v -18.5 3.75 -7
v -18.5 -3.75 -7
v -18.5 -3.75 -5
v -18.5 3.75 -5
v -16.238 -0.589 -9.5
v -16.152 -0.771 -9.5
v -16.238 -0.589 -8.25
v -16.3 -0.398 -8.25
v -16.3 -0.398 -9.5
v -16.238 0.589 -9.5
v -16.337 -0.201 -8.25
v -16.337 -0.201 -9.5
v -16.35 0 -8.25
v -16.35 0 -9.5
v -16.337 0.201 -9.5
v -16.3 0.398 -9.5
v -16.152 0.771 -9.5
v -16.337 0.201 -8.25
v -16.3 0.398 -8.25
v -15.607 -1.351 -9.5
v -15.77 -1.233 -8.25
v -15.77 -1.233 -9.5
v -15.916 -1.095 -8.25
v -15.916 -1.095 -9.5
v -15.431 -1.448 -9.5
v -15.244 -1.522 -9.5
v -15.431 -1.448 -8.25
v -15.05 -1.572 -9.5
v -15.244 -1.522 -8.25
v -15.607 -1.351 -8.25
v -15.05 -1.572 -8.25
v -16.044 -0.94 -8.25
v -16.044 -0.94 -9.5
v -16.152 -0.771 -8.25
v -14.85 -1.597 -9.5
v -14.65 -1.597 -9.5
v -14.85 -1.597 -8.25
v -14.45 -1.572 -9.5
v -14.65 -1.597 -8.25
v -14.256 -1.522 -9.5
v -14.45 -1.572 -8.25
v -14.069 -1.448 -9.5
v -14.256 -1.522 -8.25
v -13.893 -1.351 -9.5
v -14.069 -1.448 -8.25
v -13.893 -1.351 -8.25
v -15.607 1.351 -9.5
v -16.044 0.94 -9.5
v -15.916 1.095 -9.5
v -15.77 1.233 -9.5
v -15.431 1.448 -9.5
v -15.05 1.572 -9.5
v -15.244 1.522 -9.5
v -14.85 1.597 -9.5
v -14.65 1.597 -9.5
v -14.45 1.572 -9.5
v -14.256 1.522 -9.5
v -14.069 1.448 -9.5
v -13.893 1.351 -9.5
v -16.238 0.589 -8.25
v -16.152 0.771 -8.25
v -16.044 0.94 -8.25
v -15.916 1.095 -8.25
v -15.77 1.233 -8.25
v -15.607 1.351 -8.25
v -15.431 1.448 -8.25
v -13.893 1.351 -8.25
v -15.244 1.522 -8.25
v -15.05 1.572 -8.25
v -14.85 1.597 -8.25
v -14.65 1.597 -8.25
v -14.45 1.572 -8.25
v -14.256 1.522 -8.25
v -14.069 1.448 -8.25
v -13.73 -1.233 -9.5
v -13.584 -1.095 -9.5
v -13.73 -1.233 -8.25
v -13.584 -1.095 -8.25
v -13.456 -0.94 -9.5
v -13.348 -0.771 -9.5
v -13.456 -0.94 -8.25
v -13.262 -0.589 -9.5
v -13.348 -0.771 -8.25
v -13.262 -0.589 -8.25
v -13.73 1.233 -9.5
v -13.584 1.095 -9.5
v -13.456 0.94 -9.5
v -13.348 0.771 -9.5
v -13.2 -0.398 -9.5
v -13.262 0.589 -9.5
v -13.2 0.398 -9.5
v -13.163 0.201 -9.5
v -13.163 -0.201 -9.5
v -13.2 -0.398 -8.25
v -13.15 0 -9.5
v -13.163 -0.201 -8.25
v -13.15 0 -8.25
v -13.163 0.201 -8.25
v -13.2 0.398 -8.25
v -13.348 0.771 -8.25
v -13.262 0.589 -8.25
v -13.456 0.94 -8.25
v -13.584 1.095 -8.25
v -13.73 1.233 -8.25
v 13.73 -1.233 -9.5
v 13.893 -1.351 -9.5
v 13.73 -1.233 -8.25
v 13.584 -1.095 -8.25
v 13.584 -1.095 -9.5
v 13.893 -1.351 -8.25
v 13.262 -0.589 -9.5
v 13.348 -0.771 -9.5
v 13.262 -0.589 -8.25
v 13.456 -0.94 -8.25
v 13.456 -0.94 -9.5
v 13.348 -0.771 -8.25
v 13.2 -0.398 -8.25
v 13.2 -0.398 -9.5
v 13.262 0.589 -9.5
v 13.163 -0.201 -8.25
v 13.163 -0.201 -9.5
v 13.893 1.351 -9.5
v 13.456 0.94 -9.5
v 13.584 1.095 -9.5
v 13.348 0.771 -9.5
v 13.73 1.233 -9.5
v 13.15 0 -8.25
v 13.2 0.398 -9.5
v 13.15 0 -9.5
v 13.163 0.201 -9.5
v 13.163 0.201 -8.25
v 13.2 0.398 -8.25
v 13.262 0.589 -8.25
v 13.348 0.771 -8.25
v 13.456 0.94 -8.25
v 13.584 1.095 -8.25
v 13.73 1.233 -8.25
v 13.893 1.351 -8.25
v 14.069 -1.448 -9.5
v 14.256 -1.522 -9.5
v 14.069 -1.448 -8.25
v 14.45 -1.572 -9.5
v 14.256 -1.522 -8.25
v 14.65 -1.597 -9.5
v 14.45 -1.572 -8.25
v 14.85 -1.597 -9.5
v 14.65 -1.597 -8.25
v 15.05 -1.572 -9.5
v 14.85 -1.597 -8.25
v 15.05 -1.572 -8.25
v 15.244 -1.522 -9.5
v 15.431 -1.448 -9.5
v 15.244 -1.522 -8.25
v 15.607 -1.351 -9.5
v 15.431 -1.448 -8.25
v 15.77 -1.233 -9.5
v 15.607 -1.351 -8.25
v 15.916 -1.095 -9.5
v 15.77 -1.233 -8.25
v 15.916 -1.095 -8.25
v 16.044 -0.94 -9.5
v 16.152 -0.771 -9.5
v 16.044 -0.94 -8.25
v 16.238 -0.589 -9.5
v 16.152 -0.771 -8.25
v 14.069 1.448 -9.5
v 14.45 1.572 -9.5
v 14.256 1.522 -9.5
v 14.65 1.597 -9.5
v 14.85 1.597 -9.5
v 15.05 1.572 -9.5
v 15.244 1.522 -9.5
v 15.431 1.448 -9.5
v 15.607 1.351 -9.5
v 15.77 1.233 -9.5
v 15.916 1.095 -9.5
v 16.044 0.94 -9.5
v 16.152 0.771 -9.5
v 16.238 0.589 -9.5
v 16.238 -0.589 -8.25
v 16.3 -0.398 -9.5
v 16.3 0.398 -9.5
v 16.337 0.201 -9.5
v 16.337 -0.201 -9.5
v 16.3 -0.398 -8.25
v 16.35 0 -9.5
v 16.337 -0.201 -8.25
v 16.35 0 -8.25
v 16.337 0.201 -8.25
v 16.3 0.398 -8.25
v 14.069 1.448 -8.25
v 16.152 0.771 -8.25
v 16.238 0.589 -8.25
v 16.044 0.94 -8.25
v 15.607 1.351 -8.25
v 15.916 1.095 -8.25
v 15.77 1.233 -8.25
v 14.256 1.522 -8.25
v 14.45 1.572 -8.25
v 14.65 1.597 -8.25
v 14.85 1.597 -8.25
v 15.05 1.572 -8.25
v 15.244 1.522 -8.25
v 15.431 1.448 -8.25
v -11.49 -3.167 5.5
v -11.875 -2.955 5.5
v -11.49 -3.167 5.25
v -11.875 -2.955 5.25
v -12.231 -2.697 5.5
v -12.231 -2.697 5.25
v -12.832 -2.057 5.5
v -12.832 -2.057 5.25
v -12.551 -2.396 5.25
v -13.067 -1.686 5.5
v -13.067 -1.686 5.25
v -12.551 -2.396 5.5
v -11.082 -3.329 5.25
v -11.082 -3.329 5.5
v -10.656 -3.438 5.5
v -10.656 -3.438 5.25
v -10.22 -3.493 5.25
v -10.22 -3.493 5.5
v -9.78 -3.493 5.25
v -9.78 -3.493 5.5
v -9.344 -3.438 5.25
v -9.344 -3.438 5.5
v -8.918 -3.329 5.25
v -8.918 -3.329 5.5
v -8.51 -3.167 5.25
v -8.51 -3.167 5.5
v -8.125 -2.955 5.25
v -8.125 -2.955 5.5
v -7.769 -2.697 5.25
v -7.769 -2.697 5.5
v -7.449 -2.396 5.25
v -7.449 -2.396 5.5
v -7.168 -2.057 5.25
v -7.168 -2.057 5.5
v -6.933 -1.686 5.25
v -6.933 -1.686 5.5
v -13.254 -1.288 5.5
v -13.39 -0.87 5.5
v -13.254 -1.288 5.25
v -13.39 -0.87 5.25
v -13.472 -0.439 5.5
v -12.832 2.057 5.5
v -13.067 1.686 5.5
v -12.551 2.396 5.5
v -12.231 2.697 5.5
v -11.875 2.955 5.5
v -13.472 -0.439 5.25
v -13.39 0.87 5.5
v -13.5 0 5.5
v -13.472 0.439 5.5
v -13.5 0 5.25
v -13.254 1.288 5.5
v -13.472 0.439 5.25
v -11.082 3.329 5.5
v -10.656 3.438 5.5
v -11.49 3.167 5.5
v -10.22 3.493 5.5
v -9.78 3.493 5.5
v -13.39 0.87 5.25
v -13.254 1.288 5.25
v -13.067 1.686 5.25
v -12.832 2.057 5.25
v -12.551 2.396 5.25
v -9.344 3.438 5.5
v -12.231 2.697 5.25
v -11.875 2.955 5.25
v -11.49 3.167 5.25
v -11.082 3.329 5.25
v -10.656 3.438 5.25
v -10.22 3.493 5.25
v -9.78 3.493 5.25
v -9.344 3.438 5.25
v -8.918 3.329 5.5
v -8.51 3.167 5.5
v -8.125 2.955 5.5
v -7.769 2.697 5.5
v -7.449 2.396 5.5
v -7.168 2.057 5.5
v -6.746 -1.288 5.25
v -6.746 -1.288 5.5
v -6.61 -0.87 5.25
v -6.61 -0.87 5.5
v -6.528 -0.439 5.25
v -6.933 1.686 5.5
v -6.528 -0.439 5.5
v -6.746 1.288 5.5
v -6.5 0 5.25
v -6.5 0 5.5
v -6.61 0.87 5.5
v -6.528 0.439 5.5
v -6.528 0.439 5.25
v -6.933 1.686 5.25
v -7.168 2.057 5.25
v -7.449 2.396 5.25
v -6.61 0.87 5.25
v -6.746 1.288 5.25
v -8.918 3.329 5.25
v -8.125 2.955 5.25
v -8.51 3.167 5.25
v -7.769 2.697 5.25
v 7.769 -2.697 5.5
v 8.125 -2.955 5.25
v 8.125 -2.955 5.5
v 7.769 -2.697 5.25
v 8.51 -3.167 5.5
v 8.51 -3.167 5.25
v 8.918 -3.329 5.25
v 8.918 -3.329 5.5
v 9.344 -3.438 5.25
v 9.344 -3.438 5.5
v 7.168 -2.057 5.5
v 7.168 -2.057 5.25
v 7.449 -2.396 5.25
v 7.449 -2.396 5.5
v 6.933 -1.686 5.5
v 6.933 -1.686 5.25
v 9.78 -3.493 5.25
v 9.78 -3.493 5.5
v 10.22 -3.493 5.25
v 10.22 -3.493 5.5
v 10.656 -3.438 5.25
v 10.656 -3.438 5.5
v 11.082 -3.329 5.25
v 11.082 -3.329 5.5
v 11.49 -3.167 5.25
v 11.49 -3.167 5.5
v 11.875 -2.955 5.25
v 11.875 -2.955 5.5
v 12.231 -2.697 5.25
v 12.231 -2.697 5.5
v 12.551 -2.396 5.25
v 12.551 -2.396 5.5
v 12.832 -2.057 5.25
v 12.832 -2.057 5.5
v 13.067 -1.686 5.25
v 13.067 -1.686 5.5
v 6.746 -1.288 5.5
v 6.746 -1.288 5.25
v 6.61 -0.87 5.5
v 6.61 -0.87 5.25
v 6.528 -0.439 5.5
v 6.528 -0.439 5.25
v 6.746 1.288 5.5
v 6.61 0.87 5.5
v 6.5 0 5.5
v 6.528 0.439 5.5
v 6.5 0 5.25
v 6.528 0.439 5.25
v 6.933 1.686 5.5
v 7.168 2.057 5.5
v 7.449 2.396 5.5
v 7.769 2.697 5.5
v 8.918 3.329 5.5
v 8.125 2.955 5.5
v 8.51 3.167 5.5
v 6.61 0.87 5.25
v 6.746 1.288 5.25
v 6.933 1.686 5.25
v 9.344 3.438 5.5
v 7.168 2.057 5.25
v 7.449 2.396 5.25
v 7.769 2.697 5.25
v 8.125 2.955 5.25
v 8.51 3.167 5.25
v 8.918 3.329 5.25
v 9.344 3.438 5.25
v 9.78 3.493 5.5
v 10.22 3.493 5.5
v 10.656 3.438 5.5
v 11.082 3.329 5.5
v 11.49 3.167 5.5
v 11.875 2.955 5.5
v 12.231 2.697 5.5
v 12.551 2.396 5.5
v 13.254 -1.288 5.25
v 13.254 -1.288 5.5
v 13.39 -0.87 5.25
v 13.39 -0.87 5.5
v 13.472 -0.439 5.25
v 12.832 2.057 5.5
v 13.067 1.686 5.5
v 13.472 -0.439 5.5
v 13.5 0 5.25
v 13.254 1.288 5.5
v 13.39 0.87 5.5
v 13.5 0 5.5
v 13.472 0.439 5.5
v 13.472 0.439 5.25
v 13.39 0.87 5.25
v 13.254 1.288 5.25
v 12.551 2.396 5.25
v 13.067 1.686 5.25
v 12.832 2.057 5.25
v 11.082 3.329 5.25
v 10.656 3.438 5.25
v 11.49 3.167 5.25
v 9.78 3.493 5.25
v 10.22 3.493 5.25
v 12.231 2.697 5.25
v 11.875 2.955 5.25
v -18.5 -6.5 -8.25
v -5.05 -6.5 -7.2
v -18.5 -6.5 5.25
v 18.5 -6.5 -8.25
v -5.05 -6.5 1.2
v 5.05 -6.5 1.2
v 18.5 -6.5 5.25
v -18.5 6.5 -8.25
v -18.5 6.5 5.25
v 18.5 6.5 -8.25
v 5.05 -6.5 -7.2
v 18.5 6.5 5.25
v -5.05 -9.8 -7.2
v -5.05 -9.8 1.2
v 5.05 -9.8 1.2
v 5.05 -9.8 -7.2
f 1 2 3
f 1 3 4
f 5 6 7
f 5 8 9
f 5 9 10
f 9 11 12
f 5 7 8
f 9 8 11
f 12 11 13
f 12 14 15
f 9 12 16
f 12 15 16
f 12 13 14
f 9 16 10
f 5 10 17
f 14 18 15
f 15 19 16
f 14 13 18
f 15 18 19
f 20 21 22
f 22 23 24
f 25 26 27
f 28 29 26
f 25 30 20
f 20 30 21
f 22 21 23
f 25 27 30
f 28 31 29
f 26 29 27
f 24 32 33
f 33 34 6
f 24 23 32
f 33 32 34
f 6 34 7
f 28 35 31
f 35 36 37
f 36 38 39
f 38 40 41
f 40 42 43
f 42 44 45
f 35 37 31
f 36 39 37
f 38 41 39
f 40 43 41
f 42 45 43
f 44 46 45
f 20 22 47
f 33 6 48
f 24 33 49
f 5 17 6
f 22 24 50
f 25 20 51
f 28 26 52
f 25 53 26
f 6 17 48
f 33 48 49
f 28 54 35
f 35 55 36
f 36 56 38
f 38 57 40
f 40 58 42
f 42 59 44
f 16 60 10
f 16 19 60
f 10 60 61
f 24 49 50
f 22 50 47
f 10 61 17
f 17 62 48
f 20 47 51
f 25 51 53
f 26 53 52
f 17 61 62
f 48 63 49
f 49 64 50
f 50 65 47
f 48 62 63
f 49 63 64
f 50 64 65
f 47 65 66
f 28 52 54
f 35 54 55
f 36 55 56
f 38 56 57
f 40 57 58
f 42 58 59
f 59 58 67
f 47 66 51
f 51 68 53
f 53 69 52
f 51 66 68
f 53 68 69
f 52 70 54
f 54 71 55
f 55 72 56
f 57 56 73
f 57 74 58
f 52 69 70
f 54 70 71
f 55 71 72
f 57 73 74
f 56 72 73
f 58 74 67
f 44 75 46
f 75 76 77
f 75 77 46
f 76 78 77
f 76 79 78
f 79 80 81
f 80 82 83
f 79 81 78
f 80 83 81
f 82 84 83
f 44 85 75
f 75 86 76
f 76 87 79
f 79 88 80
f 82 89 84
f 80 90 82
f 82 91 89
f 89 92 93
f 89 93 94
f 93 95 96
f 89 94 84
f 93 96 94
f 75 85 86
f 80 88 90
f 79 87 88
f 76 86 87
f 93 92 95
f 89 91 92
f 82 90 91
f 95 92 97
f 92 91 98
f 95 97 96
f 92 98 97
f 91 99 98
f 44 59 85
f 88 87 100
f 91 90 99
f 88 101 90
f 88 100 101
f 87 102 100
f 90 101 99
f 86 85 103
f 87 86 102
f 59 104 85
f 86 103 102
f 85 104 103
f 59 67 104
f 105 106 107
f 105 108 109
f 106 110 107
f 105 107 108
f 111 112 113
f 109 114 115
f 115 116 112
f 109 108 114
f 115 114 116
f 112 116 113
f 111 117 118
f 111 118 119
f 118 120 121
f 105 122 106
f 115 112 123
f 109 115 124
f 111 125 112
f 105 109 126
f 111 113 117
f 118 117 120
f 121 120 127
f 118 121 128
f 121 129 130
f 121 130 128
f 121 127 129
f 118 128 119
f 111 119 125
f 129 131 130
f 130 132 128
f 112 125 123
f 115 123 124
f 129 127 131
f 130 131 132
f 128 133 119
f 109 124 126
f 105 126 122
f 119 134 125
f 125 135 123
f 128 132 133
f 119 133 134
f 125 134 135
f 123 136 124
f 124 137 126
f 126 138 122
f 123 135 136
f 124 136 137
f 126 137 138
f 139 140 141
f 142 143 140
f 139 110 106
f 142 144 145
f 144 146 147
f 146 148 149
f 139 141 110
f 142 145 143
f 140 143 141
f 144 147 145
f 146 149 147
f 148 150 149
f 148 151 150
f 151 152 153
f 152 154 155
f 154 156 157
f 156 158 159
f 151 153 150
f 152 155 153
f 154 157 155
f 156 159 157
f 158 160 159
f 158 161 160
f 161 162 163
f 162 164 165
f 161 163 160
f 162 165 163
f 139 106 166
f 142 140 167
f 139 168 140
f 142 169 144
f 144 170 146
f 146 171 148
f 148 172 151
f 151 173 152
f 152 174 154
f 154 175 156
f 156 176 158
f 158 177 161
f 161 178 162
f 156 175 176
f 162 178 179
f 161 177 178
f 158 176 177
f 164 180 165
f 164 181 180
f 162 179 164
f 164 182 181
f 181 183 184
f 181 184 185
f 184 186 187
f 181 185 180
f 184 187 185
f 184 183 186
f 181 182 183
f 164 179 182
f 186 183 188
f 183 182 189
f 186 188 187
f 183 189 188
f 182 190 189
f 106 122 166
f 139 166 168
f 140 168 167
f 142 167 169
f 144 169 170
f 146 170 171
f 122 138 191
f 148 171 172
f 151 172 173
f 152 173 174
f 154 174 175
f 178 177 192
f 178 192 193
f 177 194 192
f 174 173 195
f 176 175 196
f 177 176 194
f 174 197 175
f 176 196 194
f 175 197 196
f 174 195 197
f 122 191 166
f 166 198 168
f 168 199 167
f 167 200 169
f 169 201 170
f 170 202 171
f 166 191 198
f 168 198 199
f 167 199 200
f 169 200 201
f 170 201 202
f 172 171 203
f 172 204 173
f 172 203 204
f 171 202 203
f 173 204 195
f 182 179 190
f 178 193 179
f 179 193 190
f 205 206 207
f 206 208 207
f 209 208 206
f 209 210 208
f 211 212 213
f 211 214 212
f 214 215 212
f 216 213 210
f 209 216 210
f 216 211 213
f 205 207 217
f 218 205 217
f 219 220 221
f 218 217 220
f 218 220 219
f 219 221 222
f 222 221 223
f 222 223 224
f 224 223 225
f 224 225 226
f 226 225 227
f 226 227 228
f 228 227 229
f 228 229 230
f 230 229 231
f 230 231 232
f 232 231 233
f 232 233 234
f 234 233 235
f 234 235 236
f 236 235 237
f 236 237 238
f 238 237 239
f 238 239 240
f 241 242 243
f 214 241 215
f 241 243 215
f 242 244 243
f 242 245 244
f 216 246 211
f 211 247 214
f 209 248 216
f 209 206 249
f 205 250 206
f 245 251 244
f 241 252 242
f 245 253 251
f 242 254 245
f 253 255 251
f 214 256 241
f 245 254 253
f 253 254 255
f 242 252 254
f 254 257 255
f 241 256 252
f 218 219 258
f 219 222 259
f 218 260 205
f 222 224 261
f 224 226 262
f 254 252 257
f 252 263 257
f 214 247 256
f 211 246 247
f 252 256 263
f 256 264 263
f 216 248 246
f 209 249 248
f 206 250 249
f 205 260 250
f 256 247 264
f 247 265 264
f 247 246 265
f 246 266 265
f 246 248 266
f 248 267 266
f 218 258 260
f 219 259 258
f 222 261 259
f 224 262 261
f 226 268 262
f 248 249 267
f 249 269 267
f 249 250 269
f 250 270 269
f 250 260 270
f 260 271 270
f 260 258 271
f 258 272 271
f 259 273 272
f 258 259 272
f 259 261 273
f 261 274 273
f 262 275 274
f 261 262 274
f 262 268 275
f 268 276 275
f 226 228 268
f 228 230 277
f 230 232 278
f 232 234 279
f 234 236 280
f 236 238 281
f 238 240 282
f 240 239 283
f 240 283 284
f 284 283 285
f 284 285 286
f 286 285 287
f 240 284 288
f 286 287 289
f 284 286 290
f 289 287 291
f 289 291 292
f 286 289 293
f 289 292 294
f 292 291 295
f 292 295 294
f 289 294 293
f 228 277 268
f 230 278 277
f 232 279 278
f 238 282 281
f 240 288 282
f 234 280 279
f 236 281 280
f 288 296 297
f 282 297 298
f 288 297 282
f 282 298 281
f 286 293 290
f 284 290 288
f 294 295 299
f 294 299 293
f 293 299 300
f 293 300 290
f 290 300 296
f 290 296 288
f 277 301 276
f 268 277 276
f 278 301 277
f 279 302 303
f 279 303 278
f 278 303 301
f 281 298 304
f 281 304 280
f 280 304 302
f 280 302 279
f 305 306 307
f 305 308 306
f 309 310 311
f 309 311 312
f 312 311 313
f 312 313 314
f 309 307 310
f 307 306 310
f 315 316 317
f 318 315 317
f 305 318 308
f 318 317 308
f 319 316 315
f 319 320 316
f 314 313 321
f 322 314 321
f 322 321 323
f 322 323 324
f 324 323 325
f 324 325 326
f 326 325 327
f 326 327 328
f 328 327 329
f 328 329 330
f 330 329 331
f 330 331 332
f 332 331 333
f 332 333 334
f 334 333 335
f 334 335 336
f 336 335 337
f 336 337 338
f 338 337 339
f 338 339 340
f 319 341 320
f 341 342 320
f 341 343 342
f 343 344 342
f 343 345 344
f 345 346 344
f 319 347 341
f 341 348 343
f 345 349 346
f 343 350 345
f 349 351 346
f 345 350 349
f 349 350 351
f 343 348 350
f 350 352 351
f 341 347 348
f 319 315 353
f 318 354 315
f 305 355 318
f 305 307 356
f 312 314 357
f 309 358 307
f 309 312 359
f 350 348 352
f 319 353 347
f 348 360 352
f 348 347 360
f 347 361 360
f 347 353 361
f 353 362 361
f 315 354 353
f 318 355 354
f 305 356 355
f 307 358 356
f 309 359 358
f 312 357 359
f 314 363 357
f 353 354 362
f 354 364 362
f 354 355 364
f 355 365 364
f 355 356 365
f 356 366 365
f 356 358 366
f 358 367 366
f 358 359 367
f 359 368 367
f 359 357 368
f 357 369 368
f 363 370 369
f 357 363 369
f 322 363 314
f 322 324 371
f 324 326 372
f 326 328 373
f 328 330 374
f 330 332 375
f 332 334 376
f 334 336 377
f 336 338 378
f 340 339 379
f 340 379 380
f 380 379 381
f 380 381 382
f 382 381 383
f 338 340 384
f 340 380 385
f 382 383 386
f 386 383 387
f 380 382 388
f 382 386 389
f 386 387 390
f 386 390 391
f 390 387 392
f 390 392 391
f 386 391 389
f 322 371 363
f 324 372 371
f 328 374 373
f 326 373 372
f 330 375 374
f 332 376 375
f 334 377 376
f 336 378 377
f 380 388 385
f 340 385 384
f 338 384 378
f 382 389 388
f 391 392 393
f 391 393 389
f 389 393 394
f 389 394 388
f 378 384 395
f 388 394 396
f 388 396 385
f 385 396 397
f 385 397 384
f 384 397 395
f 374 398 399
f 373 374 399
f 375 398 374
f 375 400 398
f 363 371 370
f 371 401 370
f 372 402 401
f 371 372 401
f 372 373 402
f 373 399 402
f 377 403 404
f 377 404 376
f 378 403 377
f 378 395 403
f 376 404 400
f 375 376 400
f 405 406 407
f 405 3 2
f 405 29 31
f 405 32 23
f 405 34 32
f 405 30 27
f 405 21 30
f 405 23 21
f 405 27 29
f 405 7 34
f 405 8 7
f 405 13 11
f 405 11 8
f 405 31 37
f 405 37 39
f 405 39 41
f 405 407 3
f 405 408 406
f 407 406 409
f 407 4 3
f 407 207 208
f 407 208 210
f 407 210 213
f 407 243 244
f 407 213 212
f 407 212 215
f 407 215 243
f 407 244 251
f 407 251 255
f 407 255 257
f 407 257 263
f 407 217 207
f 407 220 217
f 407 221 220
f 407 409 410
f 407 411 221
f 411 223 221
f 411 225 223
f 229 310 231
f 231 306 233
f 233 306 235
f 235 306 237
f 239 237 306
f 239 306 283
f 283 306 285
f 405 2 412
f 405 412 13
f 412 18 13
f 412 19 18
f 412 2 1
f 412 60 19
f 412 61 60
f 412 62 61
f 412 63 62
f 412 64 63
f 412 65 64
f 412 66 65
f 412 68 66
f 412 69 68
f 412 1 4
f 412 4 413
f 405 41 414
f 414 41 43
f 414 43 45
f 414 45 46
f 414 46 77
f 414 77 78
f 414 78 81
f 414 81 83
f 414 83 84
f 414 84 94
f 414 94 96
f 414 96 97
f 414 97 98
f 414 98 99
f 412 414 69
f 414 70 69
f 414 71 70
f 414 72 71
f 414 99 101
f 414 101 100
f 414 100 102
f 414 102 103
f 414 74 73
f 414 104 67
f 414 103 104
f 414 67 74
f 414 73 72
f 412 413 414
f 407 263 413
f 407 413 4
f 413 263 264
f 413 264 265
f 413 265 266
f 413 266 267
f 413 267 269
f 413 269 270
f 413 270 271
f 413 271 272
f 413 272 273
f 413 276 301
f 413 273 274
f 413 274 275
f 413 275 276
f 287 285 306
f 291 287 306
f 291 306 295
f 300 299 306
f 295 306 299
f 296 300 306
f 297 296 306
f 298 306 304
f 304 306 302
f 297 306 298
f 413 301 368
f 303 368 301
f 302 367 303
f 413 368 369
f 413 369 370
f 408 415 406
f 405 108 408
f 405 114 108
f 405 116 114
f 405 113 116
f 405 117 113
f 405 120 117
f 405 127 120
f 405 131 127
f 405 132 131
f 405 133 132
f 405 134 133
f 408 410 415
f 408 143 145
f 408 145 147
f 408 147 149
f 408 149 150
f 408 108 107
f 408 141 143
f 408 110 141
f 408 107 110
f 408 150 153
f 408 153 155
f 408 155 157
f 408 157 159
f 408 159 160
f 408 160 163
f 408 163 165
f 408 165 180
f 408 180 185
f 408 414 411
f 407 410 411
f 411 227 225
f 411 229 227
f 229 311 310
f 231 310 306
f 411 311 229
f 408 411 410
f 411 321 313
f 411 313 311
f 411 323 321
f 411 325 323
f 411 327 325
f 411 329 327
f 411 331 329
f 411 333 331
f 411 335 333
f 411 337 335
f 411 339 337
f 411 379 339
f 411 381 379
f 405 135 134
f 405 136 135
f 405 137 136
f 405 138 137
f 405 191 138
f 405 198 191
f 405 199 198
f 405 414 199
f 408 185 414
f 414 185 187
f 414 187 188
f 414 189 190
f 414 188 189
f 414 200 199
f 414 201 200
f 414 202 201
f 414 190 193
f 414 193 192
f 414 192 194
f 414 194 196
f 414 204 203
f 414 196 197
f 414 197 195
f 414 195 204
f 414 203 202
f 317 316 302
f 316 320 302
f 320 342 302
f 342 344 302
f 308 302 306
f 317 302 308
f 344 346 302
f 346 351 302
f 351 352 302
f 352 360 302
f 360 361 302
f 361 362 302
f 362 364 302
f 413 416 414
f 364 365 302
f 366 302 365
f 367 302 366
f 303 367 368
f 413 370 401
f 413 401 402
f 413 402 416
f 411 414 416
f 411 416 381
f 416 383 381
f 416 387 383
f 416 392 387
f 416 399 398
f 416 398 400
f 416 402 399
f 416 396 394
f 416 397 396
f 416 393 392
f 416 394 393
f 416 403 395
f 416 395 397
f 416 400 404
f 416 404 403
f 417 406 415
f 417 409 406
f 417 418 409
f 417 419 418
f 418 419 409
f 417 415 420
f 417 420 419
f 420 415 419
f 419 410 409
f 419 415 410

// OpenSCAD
// Sharp GP2Y0A21YK0F 3D Model
// Unit: mm

$fn = 50;

module gp2y0a21yk0f() {
    // Main Body Dimensions
    body_w = 37;
    body_d = 13;
    body_h = 13.5;
    
    // Offset to center the origin
    z_offset = -1.5; 

    // Main Case
    color("DimGray")
    translate([0, 0, z_offset]) {
        cube([body_w, body_d, body_h], center = true);
    }

    // Mounting Tabs
    color("DimGray")
    translate([0, 0, -5.5 + z_offset]) {
        // Left Tab
        hull() {
            translate([-18.5 + 3.75, 0, 0]) cylinder(r = 3.75, h = 2);
            translate([-18.5, -3.75, 0]) cube([3.75, 7.5, 2]);
        }
        // Right Tab
        hull() {
            translate([18.5 - 3.75, 0, 0]) cylinder(r = 3.75, h = 2);
            translate([18.5 - 3.75, -3.75, 0]) cube([3.75, 7.5, 2]);
        }
    }

    // Mounting Holes
    color("Black")
    translate([0, 0, -8 + z_offset]) {
        translate([-14.75, 0, 0]) cylinder(r = 1.6, h = 10);
        translate([14.75, 0, 0]) cylinder(r = 1.6, h = 10);
    }

    // Lenses
    color("Black")
    translate([0, 0, 4 + z_offset]) {
        translate([-10, 0, 0]) cylinder(r = 3.5, h = 3);
        translate([10, 0, 0]) cylinder(r = 3.5, h = 3);
    }

    // Connector Block
    color("LightGray")
    translate([0, -body_d/2 - 1.65, -1.5 + z_offset]) {
        cube([10.1, 3.3, 8.4], center = true);
    }
}

// Render the model
gp2y0a21yk0f();
